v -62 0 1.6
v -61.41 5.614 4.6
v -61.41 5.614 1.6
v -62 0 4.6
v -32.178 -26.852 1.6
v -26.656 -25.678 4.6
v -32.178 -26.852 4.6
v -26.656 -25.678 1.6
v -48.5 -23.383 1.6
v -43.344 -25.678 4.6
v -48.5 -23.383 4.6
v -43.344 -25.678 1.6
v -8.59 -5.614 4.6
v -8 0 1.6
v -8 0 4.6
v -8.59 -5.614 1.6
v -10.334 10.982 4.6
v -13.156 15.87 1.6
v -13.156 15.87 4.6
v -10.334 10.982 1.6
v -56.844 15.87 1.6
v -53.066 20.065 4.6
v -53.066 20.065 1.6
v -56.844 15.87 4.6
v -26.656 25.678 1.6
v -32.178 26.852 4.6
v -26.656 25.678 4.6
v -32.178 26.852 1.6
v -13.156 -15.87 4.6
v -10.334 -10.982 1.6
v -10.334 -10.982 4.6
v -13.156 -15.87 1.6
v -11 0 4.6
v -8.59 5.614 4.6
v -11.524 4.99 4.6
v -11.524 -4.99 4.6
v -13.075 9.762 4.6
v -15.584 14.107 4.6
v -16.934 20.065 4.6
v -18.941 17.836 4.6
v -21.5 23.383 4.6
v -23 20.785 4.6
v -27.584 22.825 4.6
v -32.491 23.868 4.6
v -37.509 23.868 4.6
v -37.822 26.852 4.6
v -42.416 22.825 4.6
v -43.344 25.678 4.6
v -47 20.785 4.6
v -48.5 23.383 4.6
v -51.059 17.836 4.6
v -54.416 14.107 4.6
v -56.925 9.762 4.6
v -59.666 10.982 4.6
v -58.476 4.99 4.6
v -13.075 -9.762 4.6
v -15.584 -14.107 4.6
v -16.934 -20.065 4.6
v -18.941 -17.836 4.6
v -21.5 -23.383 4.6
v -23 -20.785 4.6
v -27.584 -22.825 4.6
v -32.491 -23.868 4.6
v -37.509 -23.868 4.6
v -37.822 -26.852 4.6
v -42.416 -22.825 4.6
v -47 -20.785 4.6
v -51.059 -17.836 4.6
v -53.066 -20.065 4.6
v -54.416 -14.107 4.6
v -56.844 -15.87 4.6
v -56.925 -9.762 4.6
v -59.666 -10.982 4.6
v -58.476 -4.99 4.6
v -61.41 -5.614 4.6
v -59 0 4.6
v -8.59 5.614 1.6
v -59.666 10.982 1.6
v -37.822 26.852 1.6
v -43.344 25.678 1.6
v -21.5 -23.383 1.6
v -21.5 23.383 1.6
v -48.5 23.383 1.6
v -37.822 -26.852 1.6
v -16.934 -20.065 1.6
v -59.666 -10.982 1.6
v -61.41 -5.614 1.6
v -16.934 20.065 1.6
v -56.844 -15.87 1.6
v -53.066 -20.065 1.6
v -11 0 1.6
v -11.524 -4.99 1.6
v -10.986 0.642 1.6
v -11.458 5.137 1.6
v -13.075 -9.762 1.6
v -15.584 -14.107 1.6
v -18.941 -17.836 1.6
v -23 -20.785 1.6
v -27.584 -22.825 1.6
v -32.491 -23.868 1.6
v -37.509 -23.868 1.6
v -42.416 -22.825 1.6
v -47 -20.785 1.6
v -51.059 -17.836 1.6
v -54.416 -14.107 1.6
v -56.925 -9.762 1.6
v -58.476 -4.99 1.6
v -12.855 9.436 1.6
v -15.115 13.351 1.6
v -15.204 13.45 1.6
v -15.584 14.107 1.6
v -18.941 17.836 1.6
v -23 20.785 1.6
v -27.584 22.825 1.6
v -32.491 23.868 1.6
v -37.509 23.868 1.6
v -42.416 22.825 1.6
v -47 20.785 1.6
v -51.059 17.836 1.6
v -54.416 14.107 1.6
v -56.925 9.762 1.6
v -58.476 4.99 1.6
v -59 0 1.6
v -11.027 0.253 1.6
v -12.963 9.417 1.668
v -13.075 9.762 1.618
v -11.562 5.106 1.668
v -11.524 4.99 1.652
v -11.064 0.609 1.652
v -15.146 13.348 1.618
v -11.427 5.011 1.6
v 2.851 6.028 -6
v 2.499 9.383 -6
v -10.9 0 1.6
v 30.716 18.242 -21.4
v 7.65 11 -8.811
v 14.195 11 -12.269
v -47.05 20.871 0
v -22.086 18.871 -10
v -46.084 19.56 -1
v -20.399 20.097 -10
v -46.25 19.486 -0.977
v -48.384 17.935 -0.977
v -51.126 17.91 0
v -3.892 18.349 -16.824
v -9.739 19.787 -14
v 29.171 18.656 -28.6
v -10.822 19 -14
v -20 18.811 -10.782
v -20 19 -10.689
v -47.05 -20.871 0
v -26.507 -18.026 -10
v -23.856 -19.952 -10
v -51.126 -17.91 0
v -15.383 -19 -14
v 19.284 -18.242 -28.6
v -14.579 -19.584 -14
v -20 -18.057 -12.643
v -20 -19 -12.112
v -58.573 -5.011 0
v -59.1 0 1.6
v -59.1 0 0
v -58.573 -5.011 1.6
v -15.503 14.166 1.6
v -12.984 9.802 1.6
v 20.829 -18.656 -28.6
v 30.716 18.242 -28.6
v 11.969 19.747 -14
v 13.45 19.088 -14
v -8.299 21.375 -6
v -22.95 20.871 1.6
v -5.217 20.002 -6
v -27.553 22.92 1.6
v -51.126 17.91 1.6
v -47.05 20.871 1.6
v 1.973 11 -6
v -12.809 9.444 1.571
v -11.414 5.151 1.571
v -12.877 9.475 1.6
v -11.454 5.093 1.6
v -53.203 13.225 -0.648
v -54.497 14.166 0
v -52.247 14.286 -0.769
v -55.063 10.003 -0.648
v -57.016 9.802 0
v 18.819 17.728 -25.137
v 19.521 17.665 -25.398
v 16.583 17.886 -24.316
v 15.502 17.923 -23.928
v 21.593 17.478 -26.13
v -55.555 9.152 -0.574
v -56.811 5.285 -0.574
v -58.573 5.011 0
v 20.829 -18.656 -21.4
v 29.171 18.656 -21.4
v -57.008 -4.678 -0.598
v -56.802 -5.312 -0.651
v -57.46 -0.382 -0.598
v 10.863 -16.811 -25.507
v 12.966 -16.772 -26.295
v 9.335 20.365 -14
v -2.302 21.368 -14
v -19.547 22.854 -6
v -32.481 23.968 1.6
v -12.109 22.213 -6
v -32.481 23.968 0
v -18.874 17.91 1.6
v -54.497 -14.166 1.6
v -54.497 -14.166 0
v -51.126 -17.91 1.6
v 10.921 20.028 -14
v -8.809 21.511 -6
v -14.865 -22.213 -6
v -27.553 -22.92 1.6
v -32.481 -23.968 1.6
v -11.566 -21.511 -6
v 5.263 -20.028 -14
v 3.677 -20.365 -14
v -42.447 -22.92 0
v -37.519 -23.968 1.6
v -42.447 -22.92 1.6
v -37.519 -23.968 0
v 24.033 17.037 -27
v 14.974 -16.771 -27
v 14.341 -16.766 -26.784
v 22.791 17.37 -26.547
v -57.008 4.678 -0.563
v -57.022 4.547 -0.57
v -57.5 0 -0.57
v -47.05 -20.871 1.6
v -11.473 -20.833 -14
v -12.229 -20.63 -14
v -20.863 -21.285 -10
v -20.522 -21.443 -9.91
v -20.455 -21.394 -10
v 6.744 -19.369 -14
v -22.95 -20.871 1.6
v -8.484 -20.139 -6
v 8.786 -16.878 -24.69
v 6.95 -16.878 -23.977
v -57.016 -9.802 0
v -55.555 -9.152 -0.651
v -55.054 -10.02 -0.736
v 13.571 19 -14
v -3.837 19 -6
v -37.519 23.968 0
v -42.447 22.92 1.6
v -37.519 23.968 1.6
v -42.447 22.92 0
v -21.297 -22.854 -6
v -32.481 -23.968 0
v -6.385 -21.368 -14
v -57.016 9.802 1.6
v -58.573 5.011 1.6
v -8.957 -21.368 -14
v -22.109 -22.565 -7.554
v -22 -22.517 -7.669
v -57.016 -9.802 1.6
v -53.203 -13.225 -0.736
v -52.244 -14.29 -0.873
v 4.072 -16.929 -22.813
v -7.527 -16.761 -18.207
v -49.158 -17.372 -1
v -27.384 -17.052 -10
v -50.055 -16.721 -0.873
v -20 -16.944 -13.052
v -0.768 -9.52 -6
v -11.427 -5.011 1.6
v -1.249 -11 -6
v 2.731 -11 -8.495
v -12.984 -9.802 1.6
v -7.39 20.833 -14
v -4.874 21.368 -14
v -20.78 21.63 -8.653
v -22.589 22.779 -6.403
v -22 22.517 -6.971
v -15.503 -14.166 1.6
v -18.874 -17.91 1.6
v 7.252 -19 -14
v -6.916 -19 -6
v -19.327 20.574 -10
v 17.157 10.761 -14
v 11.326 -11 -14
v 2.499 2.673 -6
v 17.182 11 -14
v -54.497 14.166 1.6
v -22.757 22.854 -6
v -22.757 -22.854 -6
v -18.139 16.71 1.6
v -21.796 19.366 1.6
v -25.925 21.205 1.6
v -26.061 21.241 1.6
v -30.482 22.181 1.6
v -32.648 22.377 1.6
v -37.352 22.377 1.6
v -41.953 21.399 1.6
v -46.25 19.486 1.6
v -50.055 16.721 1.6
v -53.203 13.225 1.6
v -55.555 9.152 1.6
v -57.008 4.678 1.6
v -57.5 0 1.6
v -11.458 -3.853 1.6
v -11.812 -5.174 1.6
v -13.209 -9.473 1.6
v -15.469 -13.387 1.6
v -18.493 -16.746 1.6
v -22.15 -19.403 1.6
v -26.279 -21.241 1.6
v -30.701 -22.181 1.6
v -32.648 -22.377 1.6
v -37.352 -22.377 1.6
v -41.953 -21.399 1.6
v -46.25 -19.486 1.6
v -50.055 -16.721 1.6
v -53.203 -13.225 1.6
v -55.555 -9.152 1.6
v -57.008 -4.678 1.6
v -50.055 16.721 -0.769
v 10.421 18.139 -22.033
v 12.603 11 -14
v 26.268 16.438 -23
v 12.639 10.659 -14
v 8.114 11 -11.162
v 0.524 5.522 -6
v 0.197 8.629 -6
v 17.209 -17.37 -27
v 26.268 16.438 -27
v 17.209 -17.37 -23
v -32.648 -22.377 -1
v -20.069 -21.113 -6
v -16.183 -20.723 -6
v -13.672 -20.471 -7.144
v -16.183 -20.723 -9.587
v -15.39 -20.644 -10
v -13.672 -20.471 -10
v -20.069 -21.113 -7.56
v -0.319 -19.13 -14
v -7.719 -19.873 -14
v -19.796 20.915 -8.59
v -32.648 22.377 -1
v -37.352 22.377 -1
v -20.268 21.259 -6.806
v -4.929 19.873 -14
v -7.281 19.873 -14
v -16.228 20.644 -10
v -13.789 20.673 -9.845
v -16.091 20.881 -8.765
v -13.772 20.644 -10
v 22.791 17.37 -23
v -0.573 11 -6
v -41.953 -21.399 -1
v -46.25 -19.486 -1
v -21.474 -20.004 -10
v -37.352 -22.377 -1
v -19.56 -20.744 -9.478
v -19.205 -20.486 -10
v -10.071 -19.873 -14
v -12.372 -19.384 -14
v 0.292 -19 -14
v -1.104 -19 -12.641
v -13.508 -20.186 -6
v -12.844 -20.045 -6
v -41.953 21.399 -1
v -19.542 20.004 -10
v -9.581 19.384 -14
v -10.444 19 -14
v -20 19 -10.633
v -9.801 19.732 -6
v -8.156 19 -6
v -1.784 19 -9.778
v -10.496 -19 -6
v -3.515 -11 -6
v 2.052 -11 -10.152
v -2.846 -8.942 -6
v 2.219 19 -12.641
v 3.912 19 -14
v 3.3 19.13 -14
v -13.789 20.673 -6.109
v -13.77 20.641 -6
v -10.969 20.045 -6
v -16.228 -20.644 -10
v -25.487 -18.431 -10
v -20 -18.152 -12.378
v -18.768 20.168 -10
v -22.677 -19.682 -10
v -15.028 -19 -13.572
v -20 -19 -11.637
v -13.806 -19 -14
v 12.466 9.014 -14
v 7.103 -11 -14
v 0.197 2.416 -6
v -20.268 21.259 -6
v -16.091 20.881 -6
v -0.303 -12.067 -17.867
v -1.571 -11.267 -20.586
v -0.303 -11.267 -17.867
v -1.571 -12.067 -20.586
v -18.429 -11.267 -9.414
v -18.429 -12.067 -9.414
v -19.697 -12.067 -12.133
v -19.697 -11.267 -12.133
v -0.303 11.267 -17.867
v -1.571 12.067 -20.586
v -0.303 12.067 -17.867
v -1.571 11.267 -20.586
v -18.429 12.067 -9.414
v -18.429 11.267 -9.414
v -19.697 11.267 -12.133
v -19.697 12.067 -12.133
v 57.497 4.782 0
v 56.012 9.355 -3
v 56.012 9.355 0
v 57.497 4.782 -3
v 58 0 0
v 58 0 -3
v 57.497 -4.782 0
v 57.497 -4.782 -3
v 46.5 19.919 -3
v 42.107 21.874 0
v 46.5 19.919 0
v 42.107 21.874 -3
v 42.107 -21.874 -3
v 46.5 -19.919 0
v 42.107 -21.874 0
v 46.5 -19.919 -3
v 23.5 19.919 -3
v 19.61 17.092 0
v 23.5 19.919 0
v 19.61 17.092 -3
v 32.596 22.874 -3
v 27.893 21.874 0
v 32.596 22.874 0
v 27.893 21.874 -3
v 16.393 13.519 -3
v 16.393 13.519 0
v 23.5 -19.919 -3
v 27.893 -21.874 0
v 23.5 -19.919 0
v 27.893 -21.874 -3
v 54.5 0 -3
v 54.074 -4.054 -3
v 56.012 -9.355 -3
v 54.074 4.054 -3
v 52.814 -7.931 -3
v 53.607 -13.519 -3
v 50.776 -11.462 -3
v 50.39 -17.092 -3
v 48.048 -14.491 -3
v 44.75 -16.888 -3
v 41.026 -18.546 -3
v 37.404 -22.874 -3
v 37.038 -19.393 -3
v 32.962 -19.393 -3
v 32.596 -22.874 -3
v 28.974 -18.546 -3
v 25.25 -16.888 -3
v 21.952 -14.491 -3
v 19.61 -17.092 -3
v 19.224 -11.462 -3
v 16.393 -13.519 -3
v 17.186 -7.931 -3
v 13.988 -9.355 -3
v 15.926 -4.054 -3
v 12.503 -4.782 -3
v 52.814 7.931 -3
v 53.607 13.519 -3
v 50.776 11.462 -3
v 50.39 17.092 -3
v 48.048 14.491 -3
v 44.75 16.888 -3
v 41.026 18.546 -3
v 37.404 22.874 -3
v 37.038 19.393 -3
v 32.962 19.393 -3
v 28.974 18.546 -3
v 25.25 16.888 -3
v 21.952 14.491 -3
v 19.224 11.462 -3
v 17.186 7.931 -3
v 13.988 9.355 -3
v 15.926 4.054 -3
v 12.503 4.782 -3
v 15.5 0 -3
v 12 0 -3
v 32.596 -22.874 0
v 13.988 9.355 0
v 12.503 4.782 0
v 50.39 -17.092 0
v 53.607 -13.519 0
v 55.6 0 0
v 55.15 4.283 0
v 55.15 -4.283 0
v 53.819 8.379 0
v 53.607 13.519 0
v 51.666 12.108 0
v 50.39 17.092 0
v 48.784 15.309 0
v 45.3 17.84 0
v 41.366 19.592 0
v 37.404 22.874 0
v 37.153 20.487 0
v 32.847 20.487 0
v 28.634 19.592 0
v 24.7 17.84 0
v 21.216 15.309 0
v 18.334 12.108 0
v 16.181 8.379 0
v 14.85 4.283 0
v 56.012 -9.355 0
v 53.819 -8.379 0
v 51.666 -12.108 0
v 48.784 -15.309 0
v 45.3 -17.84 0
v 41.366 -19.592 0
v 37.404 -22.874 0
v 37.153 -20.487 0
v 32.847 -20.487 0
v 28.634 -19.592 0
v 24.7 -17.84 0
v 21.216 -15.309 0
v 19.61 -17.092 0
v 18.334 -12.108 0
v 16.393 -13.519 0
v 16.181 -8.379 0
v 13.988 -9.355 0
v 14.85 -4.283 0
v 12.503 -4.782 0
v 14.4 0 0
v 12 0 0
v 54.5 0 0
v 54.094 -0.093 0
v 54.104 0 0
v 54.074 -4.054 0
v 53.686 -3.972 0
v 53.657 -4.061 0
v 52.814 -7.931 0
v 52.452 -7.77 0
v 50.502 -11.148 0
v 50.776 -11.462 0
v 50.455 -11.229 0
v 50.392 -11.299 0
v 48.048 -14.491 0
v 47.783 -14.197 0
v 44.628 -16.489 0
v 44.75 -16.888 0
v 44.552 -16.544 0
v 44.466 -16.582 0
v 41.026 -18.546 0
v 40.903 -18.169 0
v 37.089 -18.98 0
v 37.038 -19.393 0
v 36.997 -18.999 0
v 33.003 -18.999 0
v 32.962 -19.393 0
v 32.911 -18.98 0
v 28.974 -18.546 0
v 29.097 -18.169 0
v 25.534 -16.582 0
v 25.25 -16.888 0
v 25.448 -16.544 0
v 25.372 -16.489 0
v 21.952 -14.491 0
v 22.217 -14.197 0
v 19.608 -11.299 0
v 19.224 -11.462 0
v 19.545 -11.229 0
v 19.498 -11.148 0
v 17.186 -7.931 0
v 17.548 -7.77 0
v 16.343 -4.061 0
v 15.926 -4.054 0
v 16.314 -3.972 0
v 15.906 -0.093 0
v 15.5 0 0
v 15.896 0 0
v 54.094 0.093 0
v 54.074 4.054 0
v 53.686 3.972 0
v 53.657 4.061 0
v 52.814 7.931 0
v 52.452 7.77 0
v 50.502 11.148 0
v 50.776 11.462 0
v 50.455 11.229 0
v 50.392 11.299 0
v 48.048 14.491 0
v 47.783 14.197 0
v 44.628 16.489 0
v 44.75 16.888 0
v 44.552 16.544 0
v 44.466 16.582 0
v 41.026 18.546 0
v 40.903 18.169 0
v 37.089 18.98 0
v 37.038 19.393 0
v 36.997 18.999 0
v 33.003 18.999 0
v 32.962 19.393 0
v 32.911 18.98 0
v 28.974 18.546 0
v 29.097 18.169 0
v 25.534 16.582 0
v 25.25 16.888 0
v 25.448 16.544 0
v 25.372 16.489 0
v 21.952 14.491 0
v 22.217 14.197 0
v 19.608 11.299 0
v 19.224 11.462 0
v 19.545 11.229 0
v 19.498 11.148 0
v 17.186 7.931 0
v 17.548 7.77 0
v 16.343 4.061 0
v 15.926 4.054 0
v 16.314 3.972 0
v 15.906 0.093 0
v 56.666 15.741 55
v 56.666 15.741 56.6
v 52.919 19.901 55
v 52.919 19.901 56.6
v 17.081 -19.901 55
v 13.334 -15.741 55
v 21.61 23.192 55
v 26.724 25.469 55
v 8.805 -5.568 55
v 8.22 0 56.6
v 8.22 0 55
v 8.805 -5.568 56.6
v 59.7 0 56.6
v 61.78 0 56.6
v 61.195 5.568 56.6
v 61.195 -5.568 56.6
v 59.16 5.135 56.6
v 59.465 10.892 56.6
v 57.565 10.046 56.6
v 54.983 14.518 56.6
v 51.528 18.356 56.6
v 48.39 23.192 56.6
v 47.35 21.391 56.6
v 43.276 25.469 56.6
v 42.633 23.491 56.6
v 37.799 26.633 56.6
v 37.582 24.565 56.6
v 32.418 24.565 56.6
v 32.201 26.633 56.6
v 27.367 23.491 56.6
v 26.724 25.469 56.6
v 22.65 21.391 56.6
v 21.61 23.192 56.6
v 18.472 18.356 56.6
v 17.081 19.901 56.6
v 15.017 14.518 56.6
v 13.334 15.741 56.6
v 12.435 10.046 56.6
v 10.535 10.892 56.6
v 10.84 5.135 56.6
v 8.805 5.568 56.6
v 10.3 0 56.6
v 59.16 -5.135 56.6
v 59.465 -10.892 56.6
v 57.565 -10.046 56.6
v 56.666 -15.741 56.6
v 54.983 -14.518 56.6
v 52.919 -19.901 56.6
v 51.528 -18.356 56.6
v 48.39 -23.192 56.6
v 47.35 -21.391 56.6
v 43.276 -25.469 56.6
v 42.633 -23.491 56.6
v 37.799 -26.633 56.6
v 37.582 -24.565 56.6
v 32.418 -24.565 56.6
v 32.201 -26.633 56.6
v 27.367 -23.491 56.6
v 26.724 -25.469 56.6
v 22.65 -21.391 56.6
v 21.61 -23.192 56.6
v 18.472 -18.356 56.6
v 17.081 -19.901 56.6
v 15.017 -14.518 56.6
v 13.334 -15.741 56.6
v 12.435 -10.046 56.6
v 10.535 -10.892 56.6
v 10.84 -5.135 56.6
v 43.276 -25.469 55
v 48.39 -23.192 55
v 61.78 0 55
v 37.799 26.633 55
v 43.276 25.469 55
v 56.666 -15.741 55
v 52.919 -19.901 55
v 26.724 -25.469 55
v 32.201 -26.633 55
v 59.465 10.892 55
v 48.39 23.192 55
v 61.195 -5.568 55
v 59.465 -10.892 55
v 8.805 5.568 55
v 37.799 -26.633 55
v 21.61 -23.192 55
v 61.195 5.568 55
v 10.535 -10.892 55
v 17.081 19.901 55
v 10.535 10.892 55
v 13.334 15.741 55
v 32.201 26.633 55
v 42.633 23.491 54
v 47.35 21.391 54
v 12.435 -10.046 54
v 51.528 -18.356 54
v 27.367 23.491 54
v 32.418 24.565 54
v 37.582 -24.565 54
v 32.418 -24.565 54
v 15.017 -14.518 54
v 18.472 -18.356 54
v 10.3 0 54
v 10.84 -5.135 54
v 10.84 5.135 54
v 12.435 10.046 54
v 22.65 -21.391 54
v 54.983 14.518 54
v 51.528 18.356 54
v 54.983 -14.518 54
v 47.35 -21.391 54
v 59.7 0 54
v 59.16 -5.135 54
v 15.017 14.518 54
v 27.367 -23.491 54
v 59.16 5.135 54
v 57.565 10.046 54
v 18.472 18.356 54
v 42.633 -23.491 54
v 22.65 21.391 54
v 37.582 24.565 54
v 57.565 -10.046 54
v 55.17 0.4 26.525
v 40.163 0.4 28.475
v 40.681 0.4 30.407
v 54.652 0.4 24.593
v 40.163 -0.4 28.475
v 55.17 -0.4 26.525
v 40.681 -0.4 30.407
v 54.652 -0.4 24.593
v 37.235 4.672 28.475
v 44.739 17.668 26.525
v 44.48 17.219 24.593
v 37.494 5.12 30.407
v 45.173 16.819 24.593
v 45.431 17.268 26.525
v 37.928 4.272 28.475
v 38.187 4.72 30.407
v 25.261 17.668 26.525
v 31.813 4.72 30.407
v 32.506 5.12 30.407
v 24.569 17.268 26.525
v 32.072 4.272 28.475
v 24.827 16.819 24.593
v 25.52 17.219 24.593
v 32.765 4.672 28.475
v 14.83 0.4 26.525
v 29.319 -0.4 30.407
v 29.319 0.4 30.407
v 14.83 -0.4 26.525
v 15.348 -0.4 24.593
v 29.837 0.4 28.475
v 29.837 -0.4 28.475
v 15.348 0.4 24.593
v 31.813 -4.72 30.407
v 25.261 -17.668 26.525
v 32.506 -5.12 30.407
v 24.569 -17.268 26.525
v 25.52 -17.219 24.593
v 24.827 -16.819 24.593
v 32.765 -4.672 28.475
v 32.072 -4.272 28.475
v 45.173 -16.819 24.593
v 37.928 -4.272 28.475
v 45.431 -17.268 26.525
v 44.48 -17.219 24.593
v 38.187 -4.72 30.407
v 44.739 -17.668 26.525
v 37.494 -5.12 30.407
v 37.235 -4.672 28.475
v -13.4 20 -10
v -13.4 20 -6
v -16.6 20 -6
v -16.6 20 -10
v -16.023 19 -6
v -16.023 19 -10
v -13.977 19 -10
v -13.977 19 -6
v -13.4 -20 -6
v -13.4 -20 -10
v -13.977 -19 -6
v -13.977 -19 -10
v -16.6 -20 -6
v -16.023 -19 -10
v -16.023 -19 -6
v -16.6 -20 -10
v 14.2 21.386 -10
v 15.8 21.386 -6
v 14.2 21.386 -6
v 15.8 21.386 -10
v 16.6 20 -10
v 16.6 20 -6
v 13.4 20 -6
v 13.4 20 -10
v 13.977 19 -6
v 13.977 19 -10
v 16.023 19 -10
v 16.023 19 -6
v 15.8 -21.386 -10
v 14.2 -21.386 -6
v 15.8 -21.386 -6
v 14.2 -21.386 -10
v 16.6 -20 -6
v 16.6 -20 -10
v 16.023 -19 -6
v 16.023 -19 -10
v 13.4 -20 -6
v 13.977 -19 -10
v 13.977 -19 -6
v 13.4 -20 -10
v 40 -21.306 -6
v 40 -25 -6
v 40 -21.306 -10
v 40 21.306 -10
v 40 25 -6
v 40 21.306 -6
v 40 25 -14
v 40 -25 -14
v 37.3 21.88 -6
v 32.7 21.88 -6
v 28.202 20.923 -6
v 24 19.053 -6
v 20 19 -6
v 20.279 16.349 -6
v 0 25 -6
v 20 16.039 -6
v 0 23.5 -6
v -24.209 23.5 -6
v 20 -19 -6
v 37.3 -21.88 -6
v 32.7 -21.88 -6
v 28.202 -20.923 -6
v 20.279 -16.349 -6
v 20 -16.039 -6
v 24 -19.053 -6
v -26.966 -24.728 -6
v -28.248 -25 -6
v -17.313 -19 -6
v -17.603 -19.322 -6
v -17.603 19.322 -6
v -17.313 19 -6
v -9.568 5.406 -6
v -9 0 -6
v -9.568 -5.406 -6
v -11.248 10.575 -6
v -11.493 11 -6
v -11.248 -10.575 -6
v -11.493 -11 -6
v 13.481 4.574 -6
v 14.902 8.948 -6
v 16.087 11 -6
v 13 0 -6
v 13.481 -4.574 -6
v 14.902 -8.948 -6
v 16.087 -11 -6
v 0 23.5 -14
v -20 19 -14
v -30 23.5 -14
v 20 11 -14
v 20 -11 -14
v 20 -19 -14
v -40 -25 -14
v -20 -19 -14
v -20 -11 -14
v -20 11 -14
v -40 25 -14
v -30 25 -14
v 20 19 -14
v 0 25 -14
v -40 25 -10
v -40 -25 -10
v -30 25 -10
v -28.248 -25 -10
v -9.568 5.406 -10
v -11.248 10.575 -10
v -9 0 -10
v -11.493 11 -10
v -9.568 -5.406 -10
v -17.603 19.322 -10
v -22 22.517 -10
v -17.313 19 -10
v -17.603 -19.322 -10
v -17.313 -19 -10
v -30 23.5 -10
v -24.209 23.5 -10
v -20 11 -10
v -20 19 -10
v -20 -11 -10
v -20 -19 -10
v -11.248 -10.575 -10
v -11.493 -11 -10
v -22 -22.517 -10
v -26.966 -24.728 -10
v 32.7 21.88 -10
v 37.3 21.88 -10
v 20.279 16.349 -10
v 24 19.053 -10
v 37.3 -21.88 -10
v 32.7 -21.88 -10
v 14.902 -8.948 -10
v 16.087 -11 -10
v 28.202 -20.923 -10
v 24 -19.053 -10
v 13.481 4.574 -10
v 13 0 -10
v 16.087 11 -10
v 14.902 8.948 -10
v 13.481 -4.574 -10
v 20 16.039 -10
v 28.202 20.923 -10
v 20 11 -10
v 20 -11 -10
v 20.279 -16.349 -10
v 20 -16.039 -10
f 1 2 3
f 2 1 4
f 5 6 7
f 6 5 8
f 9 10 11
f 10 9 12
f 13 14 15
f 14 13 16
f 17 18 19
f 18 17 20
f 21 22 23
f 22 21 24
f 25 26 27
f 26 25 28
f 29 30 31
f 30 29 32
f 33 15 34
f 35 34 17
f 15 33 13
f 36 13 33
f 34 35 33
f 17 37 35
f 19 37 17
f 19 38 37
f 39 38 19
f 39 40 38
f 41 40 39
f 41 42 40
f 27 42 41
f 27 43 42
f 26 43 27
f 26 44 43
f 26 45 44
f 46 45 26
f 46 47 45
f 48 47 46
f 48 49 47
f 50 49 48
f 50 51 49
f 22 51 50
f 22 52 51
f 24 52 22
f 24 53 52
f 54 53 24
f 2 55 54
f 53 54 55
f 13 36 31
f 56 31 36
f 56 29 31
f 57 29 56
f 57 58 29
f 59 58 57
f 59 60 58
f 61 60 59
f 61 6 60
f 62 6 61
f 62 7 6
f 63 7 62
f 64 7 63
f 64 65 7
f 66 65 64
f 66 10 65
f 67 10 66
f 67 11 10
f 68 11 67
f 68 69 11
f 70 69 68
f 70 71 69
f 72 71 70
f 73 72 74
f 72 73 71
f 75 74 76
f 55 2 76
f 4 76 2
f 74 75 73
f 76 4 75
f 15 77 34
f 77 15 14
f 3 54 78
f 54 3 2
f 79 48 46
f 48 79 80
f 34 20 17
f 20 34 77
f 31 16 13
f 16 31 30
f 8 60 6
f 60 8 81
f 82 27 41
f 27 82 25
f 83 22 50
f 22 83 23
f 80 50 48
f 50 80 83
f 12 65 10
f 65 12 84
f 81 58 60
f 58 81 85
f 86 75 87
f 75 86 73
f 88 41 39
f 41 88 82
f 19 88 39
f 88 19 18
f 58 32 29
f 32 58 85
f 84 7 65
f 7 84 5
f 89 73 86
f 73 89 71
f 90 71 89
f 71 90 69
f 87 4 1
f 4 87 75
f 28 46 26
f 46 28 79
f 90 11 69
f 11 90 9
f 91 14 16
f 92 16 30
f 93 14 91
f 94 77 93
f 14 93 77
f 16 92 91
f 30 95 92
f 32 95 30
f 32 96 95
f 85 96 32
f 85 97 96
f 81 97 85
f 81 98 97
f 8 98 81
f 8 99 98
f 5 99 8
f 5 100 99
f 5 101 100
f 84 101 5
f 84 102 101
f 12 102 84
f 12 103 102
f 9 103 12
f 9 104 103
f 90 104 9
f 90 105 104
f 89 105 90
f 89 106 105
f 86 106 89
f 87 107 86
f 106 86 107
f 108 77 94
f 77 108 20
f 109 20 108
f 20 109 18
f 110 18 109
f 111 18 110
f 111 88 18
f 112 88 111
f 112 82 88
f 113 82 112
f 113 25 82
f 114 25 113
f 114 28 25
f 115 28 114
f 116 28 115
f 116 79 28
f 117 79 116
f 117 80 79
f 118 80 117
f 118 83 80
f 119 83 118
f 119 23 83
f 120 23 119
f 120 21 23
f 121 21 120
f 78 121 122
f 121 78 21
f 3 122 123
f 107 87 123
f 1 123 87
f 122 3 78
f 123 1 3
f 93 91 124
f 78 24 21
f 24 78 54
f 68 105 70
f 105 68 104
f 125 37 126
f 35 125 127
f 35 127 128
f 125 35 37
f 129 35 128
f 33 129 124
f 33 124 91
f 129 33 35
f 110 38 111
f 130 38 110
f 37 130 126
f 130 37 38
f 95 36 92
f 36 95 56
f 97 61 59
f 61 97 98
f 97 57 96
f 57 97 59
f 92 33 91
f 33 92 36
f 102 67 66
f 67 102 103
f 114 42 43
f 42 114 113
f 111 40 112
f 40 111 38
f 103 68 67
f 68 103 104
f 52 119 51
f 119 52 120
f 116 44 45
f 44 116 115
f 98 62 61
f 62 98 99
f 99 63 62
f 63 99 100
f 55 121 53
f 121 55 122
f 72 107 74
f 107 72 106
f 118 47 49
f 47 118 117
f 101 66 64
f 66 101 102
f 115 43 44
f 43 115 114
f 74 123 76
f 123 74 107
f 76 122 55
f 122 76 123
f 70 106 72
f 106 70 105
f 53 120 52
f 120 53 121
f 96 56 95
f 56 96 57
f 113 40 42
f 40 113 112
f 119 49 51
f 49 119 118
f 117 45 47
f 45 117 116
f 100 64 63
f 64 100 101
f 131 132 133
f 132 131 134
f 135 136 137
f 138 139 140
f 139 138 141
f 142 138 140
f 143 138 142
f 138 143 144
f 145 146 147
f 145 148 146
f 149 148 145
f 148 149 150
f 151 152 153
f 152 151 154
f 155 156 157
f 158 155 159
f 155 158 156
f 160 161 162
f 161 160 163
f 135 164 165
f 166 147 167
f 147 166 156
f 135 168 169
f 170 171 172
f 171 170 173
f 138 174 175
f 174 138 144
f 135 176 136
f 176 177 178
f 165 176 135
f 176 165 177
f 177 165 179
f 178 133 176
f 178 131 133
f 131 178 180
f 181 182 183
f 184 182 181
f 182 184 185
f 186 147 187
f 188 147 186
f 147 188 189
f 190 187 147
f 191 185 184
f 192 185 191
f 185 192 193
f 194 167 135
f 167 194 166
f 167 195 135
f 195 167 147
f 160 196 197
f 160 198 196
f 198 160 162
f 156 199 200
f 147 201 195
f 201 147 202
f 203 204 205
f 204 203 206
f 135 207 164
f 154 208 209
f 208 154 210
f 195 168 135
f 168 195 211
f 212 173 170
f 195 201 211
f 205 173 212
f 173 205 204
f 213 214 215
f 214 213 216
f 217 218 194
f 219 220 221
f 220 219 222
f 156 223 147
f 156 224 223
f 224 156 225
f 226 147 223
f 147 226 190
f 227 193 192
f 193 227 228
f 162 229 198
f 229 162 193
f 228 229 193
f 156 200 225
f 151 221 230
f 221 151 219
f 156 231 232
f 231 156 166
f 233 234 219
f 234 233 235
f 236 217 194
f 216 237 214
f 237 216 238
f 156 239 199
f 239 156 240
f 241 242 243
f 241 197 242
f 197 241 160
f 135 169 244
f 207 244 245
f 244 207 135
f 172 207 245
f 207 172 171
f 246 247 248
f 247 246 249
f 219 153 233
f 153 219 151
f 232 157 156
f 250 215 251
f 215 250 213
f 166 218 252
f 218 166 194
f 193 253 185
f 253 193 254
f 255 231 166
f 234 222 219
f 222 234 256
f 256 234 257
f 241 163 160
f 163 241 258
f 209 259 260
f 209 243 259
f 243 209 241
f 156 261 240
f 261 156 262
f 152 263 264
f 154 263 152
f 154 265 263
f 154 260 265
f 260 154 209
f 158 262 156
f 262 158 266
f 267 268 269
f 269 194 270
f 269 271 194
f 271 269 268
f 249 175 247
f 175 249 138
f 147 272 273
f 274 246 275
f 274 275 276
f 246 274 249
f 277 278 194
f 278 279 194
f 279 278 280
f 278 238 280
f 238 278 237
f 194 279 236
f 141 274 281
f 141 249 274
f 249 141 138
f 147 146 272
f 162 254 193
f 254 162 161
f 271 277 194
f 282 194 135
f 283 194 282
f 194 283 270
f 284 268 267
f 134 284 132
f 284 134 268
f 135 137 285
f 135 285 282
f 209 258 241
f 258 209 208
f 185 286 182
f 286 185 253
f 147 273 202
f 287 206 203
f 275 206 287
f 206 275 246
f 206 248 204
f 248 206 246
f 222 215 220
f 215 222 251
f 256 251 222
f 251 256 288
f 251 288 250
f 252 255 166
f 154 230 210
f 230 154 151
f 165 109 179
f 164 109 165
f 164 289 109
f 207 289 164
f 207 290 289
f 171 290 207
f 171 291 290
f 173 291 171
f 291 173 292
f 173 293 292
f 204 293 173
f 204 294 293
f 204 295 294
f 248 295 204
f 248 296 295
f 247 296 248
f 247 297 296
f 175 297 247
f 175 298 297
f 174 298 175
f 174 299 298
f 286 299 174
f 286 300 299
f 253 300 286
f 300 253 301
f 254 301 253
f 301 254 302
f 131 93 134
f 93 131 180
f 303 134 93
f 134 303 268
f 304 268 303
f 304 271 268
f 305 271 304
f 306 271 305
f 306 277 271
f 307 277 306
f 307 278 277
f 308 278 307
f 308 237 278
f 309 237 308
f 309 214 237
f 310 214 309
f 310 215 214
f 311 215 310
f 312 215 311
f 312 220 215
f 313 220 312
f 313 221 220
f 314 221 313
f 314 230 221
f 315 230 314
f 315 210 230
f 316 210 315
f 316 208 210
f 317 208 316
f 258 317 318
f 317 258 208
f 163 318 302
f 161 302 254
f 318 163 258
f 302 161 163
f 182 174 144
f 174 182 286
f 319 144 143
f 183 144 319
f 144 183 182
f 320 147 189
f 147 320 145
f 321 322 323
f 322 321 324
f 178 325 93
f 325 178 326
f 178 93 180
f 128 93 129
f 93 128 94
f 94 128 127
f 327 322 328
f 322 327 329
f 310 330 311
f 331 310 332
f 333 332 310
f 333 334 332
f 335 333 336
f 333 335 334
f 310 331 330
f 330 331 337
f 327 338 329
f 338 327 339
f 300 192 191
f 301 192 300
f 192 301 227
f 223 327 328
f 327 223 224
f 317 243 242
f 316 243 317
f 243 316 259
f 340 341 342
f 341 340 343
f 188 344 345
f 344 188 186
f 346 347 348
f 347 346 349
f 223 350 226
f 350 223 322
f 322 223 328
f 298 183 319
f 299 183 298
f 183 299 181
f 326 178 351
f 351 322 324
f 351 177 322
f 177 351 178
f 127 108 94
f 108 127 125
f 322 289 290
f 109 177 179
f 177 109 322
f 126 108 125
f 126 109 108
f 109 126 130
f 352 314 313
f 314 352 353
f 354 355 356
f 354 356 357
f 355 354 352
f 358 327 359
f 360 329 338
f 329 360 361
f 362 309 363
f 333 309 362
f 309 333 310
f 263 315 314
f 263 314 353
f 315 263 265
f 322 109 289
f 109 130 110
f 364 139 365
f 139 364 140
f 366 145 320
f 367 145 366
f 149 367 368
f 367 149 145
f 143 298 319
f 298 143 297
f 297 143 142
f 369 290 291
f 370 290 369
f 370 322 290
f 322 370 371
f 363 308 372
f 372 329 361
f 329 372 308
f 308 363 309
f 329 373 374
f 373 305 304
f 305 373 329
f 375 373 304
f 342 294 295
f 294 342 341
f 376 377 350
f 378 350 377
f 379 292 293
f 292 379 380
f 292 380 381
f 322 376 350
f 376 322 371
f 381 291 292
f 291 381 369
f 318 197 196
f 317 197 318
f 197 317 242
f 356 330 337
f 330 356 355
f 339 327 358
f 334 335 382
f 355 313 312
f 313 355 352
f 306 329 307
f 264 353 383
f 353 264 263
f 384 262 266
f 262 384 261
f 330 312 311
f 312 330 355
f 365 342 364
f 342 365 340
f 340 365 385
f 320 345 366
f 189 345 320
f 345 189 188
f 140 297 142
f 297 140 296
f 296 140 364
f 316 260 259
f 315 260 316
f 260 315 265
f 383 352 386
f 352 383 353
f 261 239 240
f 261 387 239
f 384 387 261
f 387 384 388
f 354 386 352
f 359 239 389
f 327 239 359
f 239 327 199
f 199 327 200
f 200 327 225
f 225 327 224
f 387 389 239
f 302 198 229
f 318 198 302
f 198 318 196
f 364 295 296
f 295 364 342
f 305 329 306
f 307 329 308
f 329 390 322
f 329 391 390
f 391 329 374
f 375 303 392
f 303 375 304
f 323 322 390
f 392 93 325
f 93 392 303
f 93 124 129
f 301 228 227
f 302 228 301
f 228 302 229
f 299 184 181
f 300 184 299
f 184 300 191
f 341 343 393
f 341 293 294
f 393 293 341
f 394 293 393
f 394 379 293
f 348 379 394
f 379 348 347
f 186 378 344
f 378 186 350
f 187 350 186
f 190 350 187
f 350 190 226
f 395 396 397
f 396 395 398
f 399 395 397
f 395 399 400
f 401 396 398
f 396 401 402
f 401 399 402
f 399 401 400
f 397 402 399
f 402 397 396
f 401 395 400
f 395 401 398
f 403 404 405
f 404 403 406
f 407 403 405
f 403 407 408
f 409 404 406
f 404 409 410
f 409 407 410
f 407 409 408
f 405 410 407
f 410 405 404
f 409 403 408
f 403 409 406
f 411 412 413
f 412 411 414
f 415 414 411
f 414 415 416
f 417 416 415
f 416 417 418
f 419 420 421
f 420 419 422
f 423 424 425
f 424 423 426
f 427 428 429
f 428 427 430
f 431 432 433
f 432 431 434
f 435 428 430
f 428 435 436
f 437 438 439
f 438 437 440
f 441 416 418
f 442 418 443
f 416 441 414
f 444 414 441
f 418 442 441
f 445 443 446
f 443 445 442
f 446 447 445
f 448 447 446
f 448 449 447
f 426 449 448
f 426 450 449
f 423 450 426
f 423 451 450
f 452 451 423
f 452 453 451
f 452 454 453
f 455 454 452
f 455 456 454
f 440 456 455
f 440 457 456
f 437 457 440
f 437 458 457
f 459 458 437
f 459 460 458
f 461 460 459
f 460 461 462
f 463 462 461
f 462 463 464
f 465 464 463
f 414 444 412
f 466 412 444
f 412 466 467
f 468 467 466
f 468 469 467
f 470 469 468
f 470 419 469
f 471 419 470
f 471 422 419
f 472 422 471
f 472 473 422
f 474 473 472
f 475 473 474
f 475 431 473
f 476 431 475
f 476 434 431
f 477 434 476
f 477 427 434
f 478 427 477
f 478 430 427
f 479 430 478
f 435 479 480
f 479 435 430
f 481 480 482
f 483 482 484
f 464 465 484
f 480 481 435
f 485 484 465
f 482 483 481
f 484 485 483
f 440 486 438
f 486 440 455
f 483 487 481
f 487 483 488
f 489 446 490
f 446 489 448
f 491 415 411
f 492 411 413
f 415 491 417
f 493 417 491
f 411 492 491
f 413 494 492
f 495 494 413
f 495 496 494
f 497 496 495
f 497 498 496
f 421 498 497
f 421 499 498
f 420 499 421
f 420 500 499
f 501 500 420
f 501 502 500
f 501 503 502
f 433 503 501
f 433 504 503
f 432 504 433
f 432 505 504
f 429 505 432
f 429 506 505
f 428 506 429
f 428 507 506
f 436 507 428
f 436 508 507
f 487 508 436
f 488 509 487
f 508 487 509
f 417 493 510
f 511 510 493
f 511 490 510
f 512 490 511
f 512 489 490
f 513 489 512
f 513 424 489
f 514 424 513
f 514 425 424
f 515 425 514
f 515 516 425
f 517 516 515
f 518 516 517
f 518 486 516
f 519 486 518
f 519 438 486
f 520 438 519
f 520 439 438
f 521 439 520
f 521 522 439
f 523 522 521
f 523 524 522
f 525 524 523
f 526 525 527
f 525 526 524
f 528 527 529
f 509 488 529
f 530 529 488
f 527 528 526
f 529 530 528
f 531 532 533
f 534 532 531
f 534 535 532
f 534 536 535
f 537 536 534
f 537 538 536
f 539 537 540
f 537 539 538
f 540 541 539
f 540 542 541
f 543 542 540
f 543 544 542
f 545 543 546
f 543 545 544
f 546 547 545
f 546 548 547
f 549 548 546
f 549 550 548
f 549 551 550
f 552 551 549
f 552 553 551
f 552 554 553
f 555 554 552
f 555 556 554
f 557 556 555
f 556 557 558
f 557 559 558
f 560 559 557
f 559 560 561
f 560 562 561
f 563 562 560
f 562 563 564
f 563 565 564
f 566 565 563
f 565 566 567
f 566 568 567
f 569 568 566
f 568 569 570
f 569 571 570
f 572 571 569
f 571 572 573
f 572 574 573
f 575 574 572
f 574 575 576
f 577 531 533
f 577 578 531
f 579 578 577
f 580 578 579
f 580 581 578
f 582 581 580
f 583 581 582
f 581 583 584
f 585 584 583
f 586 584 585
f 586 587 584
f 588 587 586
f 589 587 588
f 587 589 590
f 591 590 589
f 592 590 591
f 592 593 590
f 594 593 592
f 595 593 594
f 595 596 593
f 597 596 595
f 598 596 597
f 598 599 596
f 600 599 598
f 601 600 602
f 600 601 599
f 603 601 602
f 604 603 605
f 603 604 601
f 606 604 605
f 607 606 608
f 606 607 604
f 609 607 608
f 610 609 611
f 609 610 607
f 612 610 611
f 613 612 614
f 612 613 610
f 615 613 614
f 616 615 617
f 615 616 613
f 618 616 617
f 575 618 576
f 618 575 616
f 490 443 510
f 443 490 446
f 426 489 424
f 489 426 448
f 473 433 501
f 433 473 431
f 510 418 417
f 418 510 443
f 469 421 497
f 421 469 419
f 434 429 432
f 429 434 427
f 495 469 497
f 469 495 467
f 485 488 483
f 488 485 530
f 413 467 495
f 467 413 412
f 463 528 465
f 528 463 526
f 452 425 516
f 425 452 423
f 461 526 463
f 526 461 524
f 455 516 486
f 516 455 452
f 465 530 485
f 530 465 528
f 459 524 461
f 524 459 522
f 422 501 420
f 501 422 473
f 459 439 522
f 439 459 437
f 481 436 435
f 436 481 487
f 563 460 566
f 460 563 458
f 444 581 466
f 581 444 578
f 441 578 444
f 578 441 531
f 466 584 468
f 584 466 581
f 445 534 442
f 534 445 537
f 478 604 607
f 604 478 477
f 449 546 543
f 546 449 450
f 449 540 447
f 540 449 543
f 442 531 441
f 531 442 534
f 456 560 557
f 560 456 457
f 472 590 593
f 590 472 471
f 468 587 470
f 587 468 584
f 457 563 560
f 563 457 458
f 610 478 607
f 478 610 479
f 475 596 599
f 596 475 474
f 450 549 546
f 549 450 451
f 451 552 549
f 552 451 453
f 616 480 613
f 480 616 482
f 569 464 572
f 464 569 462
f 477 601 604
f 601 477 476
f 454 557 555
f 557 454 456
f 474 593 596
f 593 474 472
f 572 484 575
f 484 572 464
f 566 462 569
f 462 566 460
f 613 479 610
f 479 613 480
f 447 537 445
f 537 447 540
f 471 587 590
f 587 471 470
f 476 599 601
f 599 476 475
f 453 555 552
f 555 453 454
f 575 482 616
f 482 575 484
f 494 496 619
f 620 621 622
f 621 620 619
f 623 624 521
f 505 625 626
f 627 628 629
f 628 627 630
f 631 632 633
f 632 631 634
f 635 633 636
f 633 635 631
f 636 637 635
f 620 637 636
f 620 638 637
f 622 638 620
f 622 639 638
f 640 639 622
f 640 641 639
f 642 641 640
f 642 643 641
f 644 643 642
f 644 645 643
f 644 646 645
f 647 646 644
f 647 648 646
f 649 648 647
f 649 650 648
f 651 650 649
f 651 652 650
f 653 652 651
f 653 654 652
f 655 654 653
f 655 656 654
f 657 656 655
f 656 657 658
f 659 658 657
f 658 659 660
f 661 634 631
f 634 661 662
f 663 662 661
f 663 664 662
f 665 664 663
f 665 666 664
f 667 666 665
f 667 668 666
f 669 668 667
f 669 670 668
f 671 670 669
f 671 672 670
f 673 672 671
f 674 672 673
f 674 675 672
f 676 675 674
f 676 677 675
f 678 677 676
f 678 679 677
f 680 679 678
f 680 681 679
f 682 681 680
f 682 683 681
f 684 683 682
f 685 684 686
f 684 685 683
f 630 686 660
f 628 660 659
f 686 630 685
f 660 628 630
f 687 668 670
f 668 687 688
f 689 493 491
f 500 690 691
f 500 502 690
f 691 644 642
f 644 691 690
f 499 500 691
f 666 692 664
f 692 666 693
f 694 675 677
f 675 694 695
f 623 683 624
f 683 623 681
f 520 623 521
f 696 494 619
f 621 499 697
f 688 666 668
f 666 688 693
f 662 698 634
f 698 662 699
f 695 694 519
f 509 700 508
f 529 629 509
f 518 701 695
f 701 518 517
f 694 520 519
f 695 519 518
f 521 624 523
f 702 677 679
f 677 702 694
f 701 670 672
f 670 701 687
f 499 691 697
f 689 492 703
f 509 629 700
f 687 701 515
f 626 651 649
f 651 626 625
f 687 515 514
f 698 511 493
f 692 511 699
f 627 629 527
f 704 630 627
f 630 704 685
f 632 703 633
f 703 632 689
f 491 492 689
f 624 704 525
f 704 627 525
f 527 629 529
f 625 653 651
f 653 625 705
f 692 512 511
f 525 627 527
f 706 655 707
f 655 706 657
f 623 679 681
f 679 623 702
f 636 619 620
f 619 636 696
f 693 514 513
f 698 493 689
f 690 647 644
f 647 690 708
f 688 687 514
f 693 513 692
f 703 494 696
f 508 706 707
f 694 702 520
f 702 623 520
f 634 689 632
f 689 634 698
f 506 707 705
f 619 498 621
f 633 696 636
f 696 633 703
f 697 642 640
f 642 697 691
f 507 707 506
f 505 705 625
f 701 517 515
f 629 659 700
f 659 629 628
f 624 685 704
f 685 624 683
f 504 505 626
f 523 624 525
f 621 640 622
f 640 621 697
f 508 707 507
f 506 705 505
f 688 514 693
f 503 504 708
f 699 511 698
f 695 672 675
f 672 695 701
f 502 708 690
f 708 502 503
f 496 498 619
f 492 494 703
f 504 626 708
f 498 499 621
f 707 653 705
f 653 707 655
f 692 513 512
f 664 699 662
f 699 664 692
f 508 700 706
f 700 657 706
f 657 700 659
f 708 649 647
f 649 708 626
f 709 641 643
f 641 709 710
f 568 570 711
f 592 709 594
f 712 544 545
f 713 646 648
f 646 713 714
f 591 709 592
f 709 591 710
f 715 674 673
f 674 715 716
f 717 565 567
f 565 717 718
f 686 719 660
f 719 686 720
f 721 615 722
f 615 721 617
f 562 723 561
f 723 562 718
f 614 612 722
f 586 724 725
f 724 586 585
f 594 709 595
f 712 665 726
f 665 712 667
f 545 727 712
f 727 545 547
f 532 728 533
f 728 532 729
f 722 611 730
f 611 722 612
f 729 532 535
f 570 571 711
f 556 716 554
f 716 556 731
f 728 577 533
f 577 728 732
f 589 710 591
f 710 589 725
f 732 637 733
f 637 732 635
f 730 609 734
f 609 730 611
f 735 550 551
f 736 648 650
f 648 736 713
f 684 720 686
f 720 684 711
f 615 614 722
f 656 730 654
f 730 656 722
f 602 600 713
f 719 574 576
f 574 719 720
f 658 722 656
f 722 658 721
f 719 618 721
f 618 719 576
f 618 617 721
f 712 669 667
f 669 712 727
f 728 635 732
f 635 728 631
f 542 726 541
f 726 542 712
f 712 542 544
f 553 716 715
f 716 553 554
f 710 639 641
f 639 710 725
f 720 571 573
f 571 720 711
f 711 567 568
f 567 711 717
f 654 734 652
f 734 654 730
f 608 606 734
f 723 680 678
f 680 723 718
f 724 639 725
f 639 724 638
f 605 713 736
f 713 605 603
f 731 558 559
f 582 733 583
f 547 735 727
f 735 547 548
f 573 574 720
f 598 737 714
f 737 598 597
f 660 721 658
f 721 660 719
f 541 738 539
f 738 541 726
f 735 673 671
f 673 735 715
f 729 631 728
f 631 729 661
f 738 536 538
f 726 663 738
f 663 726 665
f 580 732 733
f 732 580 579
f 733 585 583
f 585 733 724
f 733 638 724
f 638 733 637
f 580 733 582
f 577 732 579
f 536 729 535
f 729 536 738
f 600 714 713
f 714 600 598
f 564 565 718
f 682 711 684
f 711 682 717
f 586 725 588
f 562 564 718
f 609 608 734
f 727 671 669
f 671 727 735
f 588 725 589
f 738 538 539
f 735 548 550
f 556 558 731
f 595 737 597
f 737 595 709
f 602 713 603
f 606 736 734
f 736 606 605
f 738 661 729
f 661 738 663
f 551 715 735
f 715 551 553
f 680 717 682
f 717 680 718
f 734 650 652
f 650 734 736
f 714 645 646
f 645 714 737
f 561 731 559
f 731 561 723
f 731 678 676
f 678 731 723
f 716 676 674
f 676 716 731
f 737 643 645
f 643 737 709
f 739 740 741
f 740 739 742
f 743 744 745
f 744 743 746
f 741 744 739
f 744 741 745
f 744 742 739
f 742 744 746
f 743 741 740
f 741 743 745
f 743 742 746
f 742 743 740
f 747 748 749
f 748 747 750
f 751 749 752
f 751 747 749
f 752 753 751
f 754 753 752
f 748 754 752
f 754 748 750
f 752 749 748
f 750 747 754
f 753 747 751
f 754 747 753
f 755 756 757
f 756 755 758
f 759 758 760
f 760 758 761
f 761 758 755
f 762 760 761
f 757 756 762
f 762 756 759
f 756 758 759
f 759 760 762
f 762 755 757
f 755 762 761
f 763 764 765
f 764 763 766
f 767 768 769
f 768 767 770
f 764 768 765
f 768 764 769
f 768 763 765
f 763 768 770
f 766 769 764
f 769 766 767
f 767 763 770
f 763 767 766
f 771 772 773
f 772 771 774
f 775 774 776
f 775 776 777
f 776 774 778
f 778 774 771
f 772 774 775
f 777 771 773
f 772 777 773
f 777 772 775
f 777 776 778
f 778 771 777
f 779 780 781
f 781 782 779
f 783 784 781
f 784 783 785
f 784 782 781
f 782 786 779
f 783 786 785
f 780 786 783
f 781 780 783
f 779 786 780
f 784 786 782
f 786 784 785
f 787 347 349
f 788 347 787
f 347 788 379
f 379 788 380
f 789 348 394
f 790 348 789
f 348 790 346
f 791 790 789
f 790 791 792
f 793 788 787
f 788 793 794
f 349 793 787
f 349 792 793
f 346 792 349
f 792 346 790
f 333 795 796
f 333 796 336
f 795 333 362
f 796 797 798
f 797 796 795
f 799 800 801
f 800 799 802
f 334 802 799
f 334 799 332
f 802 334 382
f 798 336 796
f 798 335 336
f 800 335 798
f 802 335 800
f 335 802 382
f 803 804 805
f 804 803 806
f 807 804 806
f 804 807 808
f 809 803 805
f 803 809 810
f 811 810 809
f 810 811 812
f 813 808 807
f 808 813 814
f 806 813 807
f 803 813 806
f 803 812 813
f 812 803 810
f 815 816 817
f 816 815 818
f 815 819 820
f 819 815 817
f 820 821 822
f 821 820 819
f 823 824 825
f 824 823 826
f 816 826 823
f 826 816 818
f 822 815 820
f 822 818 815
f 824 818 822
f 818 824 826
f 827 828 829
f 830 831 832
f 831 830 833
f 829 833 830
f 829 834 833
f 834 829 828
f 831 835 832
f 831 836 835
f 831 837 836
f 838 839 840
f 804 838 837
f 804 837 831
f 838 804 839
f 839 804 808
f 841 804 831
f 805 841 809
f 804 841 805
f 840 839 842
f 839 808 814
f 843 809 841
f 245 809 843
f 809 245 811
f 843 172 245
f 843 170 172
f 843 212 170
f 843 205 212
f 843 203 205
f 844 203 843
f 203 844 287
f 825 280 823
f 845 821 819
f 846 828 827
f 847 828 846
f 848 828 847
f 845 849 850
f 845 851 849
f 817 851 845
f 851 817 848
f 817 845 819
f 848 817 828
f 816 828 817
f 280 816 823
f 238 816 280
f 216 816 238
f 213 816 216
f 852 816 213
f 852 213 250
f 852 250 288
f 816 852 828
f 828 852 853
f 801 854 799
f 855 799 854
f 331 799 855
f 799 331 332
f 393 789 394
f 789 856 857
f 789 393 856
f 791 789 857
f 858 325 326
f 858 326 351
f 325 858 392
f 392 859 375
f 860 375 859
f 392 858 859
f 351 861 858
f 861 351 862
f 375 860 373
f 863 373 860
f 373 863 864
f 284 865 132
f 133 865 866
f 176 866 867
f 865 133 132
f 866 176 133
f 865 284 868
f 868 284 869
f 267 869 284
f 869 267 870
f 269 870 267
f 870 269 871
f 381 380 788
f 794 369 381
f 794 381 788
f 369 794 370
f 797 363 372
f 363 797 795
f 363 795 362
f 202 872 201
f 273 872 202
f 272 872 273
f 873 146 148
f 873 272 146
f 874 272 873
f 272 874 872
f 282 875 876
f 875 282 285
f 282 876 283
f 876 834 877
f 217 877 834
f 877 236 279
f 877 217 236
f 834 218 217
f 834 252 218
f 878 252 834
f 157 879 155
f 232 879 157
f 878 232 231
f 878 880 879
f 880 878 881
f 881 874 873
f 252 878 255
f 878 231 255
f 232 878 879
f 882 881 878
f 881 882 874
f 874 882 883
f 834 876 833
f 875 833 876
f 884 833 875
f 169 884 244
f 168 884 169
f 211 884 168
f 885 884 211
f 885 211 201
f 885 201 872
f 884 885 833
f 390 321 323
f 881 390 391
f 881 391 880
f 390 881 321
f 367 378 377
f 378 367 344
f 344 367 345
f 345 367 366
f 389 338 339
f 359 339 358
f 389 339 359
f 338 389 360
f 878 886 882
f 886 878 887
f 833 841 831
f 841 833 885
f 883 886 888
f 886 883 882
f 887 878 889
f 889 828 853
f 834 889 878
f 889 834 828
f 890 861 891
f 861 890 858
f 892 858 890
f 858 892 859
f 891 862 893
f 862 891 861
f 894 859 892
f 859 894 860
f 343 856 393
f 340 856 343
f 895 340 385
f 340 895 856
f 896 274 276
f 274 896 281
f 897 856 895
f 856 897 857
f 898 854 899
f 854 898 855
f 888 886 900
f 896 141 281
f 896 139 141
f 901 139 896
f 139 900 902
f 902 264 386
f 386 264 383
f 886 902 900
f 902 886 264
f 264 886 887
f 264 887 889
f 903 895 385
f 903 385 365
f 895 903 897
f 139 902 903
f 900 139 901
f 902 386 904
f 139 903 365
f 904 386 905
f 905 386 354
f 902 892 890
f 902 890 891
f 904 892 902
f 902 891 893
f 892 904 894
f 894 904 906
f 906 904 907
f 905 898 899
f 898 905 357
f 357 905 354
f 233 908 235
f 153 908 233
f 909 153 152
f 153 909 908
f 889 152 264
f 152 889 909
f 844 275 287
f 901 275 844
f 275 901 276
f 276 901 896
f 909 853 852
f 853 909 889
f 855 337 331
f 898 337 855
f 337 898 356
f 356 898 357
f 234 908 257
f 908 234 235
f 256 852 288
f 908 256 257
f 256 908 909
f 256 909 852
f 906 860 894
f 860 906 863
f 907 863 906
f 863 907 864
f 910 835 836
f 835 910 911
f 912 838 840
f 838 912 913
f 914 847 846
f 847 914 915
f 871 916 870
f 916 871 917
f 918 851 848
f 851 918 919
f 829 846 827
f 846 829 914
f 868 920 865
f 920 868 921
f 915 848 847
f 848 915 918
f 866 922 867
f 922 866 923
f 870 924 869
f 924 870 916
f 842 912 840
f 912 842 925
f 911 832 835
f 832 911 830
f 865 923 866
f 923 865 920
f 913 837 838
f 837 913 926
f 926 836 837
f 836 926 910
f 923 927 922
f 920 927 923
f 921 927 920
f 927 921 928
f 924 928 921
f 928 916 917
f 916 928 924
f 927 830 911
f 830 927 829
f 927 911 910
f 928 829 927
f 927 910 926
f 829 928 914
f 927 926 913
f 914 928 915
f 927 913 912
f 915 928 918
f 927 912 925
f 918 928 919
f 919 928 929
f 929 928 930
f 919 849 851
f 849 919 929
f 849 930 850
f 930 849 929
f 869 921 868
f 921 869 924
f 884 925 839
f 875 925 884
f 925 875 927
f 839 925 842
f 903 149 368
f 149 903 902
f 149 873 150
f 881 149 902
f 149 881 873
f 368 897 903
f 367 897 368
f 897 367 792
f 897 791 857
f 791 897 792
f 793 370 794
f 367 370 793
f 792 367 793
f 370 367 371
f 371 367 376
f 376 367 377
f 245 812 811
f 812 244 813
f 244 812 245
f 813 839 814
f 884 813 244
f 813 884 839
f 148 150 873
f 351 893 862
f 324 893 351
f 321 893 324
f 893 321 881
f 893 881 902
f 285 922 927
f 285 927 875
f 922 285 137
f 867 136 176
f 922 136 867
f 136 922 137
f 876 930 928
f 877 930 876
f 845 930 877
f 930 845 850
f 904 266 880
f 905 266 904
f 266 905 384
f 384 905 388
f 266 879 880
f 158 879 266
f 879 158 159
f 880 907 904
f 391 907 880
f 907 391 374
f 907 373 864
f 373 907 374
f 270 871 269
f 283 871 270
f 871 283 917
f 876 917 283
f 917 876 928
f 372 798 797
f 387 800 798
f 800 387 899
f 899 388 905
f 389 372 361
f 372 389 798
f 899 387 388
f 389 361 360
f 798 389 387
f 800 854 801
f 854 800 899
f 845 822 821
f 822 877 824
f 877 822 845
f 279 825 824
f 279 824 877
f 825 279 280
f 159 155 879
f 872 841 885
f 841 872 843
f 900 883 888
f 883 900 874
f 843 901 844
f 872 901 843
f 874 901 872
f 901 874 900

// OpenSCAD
// Dual Cooling System - Combined Part & Hotend Cooling
// Professional CFD-optimized design for maximum cooling efficiency
// Compatible with Ender 3, Prusa, Voron and similar extruders

// System parameters
part_cooling_fan = 5015;     // 5015 radial fan for part cooling
hotend_fan = 4020;           // 4020 axial fan for hotend cooling
system_height = 85;          // Total system height
mounting_width = 60;         // System mounting width

// Part cooling parameters (5015 fan)
pc_inlet_diameter = 45;
pc_outlet_width = 35;
pc_outlet_height = 4;
pc_nozzle_distance = 12;     // Distance from nozzle

// Hotend cooling parameters (4020 fan)  
hc_inlet_diameter = 38;
hc_expansion_ratio = 1.3;
hc_duct_length = 55;

// Universal mounting system
wall_thickness = 1.6;
mounting_hole_spacing = 30;

module dual_cooling_system() {
    // Part cooling duct (5015 radial fan)
    translate([-35, 0, 0]) {
        difference() {
            union() {
                // 5015 Fan mounting and duct
                hull() {
                    // Fan connection
                    cylinder(h = wall_thickness, d = pc_inlet_diameter + 2*wall_thickness);
                    
                    // Curved transition to nozzle area
                    translate([60, 0, -25])
                        rotate([0, 0, -15])
                            cube([wall_thickness, pc_outlet_width + 2*wall_thickness, 
                                  pc_outlet_height + 2*wall_thickness], center = true);
                }
                
                // 5015 mounting flange
                translate([0, 0, wall_thickness])
                    difference() {
                        cylinder(h = 3, d = 54);
                        cylinder(h = 4, d = 48);
                    }
            }
            
            // Internal airflow channel
            hull() {
                translate([0, 0, -1])
                    cylinder(h = wall_thickness + 2, d = pc_inlet_diameter);
                
                translate([55, 0, -25])
                    rotate([0, 0, -15])
                        cube([wall_thickness + 2, pc_outlet_width, pc_outlet_height], center = true);
            }
            
            // 5015 mounting holes
            for (i = [0:3]) {
                rotate([0, 0, i*90 + 45])
                    translate([20, 0, -1])
                        cylinder(h = 8, d = 4.2);
            }
            
            // Fan hub clearance
            translate([0, 0, -1])
                cylinder(h = 6, d = 22);
        }
        
        // Part cooling flow guides
        translate([25, 0, -15]) {
            for (j = [-1, 1]) {
                translate([0, j * pc_outlet_width/3, 0])
                    rotate([0, 25, 0])
                        cube([20, 0.8, 3], center = true);
            }
        }
    }
    
    // Hotend cooling duct (4020 axial fan)
    translate([35, 0, 0]) {
        difference() {
            union() {
                // 4020 Fan duct with expansion
                hull() {
                    // Fan connection
                    cylinder(h = wall_thickness, d = hc_inlet_diameter + 2*wall_thickness);
                    
                    // Expanded outlet for hotend cooling
                    translate([0, 0, hc_duct_length])
                        cylinder(h = wall_thickness, 
                                d = (hc_inlet_diameter + 2*wall_thickness) * hc_expansion_ratio);
                }
                
                // 4020 mounting flange
                translate([0, 0, -3])
                    difference() {
                        cylinder(h = 3, d = 46);
                        cylinder(h = 4, d = 39);
                    }
            }
            
            // Internal airflow channel
            hull() {
                translate([0, 0, -1])
                    cylinder(h = wall_thickness + 2, d = hc_inlet_diameter);
                
                translate([0, 0, hc_duct_length - 1])
                    cylinder(h = wall_thickness + 3, d = hc_inlet_diameter * hc_expansion_ratio);
            }
            
            // 4020 mounting holes
            for (i = [0:3]) {
                rotate([0, 0, i*90 + 45])
                    translate([16, 0, -4])
                        cylinder(h = 8, d = 3.2);
            }
            
            // Fan hub clearance
            translate([0, 0, -2])
                cylinder(h = 6, d = 12);
            
            // Hotend clearance
            translate([0, 0, hc_duct_length + 5])
                cylinder(h = 15, d = 28);
        }
        
        // Hotend cooling guide vanes
        for (i = [0:5]) {
            rotate([0, 0, i*60])
                translate([hc_inlet_diameter/3, 0, hc_duct_length/2])
                    rotate([0, 15, 0])
                        cube([15, 0.8, 2], center = true);
        }
    }
    
    // Central mounting bracket connecting both systems
    difference() {
        // Main bracket structure
        translate([0, 0, -10])
            cube([80, 50, 8], center = true);
        
        // Fan mounting clearances
        translate([-35, 0, -10])
            cylinder(h = 10, d = 52);
        translate([35, 0, -10])
            cylinder(h = 10, d = 44);
        
        // Extruder mounting holes
        for (i = [-1, 1]) {
            translate([i * mounting_hole_spacing/2, 20, -10])
                cylinder(h = 10, d = 3.2);
            translate([i * mounting_hole_spacing/2, -20, -10])
                cylinder(h = 10, d = 3.2);
        }
        
        // Weight reduction cutouts
        translate([0, 15, -10])
            cube([40, 8, 10], center = true);
        translate([0, -15, -10])
            cube([40, 8, 10], center = true);
        
        // Wire management channels
        translate([-15, 25, -10])
            cube([30, 3, 10], center = true);
    }
}

// Modular nozzle targeting system
module precision_nozzle_targeting() {
    translate([20, 0, -25]) {
        difference() {
            // Targeting ring
            cylinder(h = 3, d = pc_outlet_width + 12);
            cylinder(h = 4, d = pc_outlet_width + 4);
            
            // Directional adjustment slots
            for (i = [0:7]) {
                rotate([0, 0, i*45])
                    translate([pc_outlet_width/2 + 6, 0, 0])
                        cube([4, 1.5, 4], center = true);
            }
        }
        
        // Adjustable vanes for air direction
        for (i = [0:3]) {
            rotate([0, 0, i*90 + 22.5])
                translate([pc_outlet_width/2 + 4, 0, 1.5])
                    rotate([0, 0, 15])
                        cube([8, 1, 3], center = true);
        }
    }
}

// Universal extruder adapter plates
module extruder_adapter_plate() {
    translate([0, 30, -15]) {
        difference() {
            // Main adapter plate
            cube([70, 6, 20], center = true);
            
            // Ender 3 S1/Pro mounting pattern
            translate([25, 0, 5])
                rotate([90, 0, 0])
                    cylinder(h = 8, d = 3.2);
            translate([-25, 0, 5])
                rotate([90, 0, 0])
                    cylinder(h = 8, d = 3.2);
            
            // Prusa/E3D mounting pattern
            translate([15, 0, -5])
                rotate([90, 0, 0])
                    cylinder(h = 8, d = 3.2);
            translate([-15, 0, -5])
                rotate([90, 0, 0])
                    cylinder(h = 8, d = 3.2);
            
            // Voron mounting pattern
            translate([20, 0, 0])
                rotate([90, 0, 0])
                    cylinder(h = 8, d = 3.2);
            translate([-20, 0, 0])
                rotate([90, 0, 0])
                    cylinder(h = 8, d = 3.2);
        }
    }
}

// Integrated cable management system
module cable_management() {
    // Cable guide for both fan wires
    translate([0, -30, -5]) {
        difference() {
            cube([90, 8, 12], center = true);
            
            // Cable channels
            translate([-30, 0, 2])
                cube([6, 10, 8], center = true);
            translate([30, 0, 2])
                cube([6, 10, 8], center = true);
            
            // Strain relief
            translate([-30, -2, 2])
                rotate([0, 0, 45])
                    cube([3, 3, 8], center = true);
            translate([30, -2, 2])
                rotate([0, 0, -45])
                    cube([3, 3, 8], center = true);
        }
    }
}

// Generate the complete dual cooling system
dual_cooling_system();

// Add precision targeting (uncomment if needed)
// precision_nozzle_targeting();

// Add extruder adapter (uncomment if needed)
// extruder_adapter_plate();

// Add cable management (uncomment if needed)
// cable_management();
